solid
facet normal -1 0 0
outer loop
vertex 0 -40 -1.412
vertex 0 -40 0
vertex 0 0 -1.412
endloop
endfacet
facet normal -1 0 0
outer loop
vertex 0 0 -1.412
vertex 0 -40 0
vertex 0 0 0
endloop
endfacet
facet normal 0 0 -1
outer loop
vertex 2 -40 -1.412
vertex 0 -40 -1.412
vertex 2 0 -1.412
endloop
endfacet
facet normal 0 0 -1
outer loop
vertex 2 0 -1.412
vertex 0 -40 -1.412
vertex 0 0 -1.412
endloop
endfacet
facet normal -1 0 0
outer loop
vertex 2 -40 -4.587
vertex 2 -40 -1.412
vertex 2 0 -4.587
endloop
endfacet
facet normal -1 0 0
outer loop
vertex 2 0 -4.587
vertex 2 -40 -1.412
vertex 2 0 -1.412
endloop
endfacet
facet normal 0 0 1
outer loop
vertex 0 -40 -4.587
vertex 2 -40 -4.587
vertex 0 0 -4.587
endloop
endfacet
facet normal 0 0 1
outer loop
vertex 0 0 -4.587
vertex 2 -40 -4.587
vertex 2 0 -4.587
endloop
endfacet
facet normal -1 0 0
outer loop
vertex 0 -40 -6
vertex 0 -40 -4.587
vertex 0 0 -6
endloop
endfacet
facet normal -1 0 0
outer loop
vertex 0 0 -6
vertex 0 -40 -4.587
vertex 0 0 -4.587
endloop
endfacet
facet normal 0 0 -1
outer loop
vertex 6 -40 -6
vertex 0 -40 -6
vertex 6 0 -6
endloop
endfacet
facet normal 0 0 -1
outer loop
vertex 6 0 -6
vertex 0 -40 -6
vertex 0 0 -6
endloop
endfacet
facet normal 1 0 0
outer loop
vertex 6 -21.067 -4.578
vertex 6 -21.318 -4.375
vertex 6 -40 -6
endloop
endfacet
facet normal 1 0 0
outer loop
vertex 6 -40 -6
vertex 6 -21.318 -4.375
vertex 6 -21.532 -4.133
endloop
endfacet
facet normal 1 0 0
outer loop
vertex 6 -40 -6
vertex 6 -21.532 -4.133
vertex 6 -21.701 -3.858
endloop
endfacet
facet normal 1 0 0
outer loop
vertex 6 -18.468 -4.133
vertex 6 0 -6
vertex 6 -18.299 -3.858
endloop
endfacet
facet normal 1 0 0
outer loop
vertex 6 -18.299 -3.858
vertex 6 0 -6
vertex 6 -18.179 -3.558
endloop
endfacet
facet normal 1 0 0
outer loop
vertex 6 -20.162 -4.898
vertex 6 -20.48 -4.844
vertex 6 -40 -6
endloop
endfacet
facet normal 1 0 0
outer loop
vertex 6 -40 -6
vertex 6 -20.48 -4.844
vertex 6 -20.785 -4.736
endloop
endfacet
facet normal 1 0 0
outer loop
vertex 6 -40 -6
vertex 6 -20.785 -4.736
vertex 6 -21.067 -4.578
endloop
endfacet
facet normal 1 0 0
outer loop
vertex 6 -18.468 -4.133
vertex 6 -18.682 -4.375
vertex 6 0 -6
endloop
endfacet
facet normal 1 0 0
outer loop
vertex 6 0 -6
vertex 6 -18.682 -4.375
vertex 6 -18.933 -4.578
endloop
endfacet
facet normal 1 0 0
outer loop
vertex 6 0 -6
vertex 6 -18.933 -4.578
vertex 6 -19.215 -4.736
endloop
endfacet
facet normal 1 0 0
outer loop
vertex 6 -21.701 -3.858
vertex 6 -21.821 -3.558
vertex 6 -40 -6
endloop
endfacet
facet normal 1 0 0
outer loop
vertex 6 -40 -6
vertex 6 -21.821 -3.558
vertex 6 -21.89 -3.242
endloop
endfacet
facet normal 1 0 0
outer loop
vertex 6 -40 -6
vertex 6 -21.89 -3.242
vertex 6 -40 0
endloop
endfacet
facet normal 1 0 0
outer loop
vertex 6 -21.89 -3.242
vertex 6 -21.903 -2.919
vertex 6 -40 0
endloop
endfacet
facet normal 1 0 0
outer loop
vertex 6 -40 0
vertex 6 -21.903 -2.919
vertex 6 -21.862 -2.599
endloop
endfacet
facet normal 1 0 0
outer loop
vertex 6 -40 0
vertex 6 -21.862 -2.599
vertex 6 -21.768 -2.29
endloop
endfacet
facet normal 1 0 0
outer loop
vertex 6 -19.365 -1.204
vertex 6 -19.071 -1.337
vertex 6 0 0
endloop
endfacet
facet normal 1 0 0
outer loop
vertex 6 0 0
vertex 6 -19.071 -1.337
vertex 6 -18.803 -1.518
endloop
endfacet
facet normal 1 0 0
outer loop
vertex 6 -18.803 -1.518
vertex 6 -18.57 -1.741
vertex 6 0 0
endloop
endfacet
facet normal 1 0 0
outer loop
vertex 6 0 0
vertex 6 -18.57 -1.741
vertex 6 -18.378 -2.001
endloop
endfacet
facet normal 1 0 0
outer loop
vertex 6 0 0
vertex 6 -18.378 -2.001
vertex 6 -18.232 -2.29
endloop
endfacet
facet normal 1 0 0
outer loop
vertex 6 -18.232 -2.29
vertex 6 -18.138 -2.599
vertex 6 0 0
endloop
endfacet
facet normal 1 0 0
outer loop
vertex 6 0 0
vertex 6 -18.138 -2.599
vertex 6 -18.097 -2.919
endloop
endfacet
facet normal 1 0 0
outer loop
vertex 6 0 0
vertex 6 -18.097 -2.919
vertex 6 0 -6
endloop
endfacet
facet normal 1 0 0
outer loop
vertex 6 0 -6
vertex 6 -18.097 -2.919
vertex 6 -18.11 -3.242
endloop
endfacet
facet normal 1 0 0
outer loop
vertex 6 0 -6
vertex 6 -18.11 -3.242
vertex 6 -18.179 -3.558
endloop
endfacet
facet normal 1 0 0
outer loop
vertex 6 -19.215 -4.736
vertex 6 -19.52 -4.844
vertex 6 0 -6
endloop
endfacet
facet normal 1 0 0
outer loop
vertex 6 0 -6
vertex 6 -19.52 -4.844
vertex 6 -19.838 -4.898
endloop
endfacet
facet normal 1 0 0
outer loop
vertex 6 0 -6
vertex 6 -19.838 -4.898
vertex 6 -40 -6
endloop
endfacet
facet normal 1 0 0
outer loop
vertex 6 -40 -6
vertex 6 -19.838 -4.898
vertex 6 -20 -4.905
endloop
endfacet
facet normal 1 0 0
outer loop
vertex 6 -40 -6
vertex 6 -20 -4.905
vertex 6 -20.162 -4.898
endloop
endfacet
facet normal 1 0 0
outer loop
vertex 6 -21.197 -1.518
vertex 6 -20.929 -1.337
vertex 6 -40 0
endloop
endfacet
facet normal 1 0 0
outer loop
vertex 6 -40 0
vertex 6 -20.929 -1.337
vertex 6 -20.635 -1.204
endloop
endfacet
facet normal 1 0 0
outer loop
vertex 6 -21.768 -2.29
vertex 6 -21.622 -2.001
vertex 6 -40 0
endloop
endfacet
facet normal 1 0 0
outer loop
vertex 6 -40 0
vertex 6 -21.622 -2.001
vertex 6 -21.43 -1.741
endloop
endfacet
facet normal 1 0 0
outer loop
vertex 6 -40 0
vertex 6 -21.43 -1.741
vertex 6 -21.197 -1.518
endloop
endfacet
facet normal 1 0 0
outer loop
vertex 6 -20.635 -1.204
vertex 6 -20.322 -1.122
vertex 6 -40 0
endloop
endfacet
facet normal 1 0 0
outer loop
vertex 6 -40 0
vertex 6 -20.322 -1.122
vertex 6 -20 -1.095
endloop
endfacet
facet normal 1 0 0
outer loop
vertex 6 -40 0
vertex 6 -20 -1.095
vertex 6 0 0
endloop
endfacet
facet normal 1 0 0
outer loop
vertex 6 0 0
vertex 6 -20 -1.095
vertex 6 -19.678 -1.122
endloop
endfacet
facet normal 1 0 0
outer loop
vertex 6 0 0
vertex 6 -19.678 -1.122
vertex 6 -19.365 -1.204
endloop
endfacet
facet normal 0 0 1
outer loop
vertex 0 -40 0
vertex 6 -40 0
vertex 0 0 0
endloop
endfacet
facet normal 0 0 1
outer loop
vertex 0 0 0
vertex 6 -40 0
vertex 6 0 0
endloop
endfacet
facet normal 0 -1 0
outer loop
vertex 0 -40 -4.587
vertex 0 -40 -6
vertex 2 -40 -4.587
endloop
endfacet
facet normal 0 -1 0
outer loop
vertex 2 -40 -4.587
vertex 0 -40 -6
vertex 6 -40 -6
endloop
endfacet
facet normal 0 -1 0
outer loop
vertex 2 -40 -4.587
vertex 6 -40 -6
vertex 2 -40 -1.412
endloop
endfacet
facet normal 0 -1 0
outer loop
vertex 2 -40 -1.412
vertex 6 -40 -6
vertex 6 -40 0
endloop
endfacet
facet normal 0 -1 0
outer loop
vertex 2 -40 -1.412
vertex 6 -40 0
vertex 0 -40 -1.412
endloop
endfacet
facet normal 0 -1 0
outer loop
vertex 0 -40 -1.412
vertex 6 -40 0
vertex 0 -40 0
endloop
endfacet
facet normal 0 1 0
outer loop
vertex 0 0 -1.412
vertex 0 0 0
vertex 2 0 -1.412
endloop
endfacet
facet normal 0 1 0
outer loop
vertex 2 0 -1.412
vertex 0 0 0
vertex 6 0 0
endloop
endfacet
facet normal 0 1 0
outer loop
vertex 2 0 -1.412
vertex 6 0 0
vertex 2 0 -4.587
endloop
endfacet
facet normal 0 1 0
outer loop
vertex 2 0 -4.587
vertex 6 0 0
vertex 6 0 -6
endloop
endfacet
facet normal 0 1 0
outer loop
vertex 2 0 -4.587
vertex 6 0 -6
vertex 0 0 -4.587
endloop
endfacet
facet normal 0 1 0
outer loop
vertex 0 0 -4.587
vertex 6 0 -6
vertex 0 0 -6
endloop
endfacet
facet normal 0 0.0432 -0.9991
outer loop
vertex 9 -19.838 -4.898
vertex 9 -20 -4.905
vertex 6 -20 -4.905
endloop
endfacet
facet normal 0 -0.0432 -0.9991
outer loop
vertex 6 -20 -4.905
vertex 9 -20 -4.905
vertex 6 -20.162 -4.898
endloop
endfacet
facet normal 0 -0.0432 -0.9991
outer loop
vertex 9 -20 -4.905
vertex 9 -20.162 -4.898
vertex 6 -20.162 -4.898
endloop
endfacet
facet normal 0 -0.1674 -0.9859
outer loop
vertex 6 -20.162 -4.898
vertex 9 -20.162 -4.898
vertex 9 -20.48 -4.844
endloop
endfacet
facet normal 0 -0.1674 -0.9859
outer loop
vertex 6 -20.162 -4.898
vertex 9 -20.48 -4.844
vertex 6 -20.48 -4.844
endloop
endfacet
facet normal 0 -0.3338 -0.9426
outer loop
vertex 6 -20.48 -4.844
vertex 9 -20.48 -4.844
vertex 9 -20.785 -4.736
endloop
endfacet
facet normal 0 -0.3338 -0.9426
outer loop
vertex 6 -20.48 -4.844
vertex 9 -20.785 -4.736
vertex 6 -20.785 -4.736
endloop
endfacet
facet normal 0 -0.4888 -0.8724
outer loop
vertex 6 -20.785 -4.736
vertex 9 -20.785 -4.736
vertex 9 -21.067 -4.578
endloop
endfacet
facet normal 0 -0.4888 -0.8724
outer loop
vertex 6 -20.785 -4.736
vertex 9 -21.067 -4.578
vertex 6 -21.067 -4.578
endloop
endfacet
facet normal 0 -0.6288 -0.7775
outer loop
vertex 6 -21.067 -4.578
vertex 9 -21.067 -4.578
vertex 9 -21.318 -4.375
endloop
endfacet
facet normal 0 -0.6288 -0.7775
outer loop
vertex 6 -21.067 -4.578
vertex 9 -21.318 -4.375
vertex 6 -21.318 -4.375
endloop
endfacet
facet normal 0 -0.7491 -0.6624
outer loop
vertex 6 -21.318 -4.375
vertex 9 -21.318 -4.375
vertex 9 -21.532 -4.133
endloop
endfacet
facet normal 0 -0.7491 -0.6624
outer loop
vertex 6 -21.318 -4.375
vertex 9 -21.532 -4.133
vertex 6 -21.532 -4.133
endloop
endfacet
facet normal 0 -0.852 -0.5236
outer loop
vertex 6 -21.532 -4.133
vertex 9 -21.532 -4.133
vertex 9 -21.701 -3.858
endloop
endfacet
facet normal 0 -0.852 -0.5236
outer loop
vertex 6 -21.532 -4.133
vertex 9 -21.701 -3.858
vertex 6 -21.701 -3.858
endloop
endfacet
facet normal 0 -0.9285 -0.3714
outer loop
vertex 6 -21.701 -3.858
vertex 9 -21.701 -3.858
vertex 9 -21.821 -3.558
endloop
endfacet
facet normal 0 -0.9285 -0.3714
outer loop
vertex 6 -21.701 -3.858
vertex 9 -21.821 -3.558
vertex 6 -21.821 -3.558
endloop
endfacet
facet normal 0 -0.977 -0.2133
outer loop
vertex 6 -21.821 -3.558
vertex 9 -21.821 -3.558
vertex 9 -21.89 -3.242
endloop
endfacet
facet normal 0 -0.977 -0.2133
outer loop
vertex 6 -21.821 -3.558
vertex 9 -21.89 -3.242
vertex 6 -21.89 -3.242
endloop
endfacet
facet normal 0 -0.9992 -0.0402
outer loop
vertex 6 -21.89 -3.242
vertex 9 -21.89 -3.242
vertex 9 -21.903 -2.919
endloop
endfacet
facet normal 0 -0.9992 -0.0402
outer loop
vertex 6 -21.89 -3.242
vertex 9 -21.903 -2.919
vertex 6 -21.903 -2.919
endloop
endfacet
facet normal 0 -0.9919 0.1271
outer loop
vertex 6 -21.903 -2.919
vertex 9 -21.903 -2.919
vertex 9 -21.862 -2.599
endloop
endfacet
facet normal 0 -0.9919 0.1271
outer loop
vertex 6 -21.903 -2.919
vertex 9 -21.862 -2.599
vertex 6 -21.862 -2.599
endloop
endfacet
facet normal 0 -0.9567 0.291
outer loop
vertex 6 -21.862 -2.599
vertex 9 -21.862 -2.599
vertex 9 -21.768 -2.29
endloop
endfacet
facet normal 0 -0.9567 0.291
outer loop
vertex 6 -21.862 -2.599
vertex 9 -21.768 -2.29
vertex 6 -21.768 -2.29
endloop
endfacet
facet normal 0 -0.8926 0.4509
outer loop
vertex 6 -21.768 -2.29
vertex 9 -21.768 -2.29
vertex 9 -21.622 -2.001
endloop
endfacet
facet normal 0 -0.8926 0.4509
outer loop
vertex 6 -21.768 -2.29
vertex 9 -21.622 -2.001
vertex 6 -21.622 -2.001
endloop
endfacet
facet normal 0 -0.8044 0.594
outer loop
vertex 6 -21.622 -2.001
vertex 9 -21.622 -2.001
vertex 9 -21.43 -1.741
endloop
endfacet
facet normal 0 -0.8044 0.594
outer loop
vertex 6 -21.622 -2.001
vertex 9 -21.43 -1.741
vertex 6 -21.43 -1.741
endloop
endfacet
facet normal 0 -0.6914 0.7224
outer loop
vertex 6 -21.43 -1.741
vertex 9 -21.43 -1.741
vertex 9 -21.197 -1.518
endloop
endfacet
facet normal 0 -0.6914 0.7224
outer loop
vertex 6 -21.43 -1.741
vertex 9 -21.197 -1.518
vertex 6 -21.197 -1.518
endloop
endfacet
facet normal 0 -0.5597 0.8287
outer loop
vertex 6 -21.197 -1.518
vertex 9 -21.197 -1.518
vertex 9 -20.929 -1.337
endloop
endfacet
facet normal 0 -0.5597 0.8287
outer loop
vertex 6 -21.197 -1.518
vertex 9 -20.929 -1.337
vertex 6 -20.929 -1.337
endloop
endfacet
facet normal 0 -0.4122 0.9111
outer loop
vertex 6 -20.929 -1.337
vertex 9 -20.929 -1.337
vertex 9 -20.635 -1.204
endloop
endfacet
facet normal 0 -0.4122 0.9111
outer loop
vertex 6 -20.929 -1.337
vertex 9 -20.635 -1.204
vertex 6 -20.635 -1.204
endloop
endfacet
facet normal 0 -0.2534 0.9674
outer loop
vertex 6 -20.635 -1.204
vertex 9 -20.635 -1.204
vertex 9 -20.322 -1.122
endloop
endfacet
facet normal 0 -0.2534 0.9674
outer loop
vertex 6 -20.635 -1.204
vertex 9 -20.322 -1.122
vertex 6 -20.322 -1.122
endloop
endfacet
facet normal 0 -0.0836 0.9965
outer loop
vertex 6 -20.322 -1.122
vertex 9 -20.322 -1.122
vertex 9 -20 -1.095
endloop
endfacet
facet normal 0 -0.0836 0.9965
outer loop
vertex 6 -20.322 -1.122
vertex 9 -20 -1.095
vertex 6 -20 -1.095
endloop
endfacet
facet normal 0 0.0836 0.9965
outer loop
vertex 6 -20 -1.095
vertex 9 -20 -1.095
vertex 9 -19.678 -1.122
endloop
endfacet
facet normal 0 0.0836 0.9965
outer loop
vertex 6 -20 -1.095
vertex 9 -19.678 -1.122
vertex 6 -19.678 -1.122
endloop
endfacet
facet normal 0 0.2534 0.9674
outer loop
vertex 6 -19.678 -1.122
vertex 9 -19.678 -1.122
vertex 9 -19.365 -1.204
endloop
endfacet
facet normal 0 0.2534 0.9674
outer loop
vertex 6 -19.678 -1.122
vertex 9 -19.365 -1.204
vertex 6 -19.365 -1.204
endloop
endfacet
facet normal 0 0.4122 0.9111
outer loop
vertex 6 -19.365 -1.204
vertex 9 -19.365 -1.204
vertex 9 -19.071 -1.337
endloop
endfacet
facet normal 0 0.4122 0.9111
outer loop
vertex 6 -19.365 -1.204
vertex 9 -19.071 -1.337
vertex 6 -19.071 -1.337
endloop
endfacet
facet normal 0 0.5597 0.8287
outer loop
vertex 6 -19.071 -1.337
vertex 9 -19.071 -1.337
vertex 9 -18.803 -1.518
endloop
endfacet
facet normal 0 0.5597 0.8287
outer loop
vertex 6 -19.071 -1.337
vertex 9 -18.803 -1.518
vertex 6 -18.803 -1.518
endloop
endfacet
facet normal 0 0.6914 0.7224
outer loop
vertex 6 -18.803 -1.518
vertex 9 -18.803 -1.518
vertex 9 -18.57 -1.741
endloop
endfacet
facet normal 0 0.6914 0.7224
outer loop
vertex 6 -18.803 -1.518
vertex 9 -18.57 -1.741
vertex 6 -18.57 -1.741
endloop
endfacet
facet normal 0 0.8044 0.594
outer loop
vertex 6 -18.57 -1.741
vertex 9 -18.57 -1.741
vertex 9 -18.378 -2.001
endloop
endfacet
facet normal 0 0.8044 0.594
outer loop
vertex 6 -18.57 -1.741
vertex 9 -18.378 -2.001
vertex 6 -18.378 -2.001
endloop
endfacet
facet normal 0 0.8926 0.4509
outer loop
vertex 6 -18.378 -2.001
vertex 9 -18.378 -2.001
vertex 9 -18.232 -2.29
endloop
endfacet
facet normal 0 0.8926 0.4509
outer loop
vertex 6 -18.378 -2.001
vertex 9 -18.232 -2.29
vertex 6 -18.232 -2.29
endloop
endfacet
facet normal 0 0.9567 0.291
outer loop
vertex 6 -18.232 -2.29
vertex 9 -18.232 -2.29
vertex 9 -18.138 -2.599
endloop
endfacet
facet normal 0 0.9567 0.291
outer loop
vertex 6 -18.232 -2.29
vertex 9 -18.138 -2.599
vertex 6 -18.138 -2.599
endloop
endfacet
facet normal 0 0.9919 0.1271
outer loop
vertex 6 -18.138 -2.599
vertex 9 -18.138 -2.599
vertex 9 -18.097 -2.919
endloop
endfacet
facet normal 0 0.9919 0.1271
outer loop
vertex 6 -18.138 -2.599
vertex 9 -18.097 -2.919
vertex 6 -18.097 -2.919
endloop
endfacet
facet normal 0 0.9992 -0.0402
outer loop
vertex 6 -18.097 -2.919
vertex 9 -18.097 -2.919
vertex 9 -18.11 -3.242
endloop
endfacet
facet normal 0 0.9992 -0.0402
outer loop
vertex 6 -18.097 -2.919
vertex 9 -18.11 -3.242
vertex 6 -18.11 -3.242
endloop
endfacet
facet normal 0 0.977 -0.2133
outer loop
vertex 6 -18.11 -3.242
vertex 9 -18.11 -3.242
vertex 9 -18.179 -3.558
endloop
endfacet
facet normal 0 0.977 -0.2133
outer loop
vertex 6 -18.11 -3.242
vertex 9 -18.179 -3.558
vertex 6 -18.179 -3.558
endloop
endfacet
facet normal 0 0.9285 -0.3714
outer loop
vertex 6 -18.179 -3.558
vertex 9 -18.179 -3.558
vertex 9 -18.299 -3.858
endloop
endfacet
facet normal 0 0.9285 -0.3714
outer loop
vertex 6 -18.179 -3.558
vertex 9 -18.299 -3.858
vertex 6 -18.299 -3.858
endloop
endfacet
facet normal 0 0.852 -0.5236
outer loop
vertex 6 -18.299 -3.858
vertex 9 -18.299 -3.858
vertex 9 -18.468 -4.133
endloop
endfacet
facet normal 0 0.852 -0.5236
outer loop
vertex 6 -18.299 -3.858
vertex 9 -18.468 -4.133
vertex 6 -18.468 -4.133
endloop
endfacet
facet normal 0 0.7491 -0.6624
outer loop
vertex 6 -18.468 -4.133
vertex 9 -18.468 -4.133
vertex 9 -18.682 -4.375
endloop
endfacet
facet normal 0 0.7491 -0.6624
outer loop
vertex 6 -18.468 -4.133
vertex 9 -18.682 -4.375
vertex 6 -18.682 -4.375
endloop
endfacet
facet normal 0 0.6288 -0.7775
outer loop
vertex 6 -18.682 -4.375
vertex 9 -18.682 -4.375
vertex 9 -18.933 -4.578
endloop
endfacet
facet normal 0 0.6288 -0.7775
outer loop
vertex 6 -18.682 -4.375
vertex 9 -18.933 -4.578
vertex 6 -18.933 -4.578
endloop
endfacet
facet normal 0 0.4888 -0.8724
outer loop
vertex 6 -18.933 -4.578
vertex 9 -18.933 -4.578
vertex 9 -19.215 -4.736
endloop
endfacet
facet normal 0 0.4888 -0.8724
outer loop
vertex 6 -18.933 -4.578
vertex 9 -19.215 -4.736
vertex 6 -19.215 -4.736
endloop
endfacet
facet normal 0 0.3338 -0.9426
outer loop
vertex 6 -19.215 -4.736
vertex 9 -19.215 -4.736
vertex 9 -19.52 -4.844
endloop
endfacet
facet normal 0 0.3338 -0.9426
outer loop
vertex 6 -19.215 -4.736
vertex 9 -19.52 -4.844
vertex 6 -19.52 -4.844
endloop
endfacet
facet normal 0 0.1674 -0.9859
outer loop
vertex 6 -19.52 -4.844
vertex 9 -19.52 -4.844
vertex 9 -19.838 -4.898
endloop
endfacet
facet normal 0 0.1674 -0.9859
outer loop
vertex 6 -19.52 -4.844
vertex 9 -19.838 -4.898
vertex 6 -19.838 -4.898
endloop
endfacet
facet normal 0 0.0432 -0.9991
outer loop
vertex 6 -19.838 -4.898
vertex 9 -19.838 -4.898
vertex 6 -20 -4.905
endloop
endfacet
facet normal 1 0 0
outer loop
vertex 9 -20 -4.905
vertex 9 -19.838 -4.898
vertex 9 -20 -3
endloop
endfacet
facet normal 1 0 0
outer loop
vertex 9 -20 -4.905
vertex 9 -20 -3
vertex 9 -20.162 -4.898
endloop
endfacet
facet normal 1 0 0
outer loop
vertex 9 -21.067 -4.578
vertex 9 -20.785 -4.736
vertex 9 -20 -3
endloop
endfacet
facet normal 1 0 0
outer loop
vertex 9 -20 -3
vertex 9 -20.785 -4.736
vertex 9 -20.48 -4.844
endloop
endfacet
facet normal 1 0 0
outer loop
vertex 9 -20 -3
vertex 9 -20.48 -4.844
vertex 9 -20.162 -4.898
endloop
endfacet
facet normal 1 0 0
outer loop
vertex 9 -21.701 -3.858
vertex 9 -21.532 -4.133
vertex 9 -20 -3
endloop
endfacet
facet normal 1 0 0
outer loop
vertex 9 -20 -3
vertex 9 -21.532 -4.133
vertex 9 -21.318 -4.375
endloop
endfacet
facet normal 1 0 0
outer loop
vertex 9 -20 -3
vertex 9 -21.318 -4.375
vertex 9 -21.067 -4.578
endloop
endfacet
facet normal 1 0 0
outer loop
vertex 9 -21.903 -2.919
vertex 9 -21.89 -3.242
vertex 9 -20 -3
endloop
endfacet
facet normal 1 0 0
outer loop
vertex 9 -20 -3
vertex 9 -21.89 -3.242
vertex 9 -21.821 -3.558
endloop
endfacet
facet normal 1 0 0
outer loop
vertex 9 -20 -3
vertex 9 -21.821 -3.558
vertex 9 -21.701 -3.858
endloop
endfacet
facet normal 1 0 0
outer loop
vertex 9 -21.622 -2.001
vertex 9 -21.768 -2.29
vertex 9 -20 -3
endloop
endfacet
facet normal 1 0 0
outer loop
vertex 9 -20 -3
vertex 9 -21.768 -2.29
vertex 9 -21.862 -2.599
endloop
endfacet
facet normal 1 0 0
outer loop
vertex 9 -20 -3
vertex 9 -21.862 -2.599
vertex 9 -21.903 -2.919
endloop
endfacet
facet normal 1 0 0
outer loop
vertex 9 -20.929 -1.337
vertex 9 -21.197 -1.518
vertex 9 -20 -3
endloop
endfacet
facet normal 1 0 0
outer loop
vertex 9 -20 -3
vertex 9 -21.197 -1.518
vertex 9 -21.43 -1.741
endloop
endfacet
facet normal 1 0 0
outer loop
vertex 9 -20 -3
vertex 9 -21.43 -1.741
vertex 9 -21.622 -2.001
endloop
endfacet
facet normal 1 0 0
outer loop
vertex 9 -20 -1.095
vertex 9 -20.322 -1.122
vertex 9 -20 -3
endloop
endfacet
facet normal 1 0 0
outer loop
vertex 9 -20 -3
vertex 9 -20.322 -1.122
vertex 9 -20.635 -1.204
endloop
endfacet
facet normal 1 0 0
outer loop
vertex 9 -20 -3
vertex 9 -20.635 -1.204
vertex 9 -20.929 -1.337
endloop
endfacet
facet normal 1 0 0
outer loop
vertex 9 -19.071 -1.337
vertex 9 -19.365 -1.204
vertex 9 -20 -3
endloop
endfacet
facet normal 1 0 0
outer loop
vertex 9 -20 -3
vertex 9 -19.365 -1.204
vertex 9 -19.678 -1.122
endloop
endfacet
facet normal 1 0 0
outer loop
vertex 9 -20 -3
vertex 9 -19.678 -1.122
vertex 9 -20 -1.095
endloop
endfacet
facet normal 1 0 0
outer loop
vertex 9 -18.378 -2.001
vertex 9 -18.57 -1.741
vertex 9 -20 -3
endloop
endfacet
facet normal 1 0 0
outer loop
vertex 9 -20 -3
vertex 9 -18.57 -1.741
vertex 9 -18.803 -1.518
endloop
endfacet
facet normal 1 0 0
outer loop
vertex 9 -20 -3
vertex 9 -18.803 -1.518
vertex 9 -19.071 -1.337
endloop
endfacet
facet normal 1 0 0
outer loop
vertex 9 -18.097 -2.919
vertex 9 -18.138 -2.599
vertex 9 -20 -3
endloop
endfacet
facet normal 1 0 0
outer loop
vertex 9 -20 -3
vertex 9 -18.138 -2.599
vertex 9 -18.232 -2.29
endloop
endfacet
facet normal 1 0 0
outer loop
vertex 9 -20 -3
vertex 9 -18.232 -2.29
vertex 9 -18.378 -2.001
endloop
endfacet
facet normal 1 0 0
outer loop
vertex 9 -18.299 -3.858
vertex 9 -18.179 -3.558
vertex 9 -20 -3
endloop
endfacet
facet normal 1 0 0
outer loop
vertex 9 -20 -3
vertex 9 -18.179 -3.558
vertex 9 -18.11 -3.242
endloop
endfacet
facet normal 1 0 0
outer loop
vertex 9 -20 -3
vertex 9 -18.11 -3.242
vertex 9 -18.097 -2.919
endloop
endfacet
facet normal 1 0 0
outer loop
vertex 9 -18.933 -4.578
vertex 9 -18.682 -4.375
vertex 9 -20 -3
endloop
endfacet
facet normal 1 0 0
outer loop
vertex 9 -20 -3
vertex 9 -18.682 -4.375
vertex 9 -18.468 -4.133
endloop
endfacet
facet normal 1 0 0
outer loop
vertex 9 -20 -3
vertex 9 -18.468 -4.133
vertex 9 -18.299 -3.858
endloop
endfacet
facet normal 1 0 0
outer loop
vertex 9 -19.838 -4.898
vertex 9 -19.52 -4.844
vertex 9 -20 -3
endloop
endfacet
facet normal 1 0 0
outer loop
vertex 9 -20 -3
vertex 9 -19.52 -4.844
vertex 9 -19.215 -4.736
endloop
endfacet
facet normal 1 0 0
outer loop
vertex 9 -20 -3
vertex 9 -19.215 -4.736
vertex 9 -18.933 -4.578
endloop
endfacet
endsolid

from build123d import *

# Parameters (mm, degrees)
BOSS_EXTRUDE1_DEPTH = 40
SKETCH3_R           = 1.905
BOSS_EXTRUDE2_DEPTH = 3


with BuildPart() as part:
    # Sketch2 → Boss-Extrude1 (new body)
    with BuildSketch(Plane(origin=(0, 0, 0), x_dir=(1, 0, 0), z_dir=(0, 1, 0))):
        Polygon((0, 0), (6, 0), (6, 6), (0, 6), (0, 4.5875), (2, 4.5875), (2, 1.4125), (0, 1.4125), align=None)
    extrude(amount=-BOSS_EXTRUDE1_DEPTH)

    # Sketch3 → Boss-Extrude2 (add)
    with BuildSketch(Plane(origin=(6, 0, 0), x_dir=(0, 0, -1), z_dir=(1, 0, 0))):
        with Locations((3, -20)):
            Circle(SKETCH3_R)
    extrude(amount=BOSS_EXTRUDE2_DEPTH)


solid = part.part
